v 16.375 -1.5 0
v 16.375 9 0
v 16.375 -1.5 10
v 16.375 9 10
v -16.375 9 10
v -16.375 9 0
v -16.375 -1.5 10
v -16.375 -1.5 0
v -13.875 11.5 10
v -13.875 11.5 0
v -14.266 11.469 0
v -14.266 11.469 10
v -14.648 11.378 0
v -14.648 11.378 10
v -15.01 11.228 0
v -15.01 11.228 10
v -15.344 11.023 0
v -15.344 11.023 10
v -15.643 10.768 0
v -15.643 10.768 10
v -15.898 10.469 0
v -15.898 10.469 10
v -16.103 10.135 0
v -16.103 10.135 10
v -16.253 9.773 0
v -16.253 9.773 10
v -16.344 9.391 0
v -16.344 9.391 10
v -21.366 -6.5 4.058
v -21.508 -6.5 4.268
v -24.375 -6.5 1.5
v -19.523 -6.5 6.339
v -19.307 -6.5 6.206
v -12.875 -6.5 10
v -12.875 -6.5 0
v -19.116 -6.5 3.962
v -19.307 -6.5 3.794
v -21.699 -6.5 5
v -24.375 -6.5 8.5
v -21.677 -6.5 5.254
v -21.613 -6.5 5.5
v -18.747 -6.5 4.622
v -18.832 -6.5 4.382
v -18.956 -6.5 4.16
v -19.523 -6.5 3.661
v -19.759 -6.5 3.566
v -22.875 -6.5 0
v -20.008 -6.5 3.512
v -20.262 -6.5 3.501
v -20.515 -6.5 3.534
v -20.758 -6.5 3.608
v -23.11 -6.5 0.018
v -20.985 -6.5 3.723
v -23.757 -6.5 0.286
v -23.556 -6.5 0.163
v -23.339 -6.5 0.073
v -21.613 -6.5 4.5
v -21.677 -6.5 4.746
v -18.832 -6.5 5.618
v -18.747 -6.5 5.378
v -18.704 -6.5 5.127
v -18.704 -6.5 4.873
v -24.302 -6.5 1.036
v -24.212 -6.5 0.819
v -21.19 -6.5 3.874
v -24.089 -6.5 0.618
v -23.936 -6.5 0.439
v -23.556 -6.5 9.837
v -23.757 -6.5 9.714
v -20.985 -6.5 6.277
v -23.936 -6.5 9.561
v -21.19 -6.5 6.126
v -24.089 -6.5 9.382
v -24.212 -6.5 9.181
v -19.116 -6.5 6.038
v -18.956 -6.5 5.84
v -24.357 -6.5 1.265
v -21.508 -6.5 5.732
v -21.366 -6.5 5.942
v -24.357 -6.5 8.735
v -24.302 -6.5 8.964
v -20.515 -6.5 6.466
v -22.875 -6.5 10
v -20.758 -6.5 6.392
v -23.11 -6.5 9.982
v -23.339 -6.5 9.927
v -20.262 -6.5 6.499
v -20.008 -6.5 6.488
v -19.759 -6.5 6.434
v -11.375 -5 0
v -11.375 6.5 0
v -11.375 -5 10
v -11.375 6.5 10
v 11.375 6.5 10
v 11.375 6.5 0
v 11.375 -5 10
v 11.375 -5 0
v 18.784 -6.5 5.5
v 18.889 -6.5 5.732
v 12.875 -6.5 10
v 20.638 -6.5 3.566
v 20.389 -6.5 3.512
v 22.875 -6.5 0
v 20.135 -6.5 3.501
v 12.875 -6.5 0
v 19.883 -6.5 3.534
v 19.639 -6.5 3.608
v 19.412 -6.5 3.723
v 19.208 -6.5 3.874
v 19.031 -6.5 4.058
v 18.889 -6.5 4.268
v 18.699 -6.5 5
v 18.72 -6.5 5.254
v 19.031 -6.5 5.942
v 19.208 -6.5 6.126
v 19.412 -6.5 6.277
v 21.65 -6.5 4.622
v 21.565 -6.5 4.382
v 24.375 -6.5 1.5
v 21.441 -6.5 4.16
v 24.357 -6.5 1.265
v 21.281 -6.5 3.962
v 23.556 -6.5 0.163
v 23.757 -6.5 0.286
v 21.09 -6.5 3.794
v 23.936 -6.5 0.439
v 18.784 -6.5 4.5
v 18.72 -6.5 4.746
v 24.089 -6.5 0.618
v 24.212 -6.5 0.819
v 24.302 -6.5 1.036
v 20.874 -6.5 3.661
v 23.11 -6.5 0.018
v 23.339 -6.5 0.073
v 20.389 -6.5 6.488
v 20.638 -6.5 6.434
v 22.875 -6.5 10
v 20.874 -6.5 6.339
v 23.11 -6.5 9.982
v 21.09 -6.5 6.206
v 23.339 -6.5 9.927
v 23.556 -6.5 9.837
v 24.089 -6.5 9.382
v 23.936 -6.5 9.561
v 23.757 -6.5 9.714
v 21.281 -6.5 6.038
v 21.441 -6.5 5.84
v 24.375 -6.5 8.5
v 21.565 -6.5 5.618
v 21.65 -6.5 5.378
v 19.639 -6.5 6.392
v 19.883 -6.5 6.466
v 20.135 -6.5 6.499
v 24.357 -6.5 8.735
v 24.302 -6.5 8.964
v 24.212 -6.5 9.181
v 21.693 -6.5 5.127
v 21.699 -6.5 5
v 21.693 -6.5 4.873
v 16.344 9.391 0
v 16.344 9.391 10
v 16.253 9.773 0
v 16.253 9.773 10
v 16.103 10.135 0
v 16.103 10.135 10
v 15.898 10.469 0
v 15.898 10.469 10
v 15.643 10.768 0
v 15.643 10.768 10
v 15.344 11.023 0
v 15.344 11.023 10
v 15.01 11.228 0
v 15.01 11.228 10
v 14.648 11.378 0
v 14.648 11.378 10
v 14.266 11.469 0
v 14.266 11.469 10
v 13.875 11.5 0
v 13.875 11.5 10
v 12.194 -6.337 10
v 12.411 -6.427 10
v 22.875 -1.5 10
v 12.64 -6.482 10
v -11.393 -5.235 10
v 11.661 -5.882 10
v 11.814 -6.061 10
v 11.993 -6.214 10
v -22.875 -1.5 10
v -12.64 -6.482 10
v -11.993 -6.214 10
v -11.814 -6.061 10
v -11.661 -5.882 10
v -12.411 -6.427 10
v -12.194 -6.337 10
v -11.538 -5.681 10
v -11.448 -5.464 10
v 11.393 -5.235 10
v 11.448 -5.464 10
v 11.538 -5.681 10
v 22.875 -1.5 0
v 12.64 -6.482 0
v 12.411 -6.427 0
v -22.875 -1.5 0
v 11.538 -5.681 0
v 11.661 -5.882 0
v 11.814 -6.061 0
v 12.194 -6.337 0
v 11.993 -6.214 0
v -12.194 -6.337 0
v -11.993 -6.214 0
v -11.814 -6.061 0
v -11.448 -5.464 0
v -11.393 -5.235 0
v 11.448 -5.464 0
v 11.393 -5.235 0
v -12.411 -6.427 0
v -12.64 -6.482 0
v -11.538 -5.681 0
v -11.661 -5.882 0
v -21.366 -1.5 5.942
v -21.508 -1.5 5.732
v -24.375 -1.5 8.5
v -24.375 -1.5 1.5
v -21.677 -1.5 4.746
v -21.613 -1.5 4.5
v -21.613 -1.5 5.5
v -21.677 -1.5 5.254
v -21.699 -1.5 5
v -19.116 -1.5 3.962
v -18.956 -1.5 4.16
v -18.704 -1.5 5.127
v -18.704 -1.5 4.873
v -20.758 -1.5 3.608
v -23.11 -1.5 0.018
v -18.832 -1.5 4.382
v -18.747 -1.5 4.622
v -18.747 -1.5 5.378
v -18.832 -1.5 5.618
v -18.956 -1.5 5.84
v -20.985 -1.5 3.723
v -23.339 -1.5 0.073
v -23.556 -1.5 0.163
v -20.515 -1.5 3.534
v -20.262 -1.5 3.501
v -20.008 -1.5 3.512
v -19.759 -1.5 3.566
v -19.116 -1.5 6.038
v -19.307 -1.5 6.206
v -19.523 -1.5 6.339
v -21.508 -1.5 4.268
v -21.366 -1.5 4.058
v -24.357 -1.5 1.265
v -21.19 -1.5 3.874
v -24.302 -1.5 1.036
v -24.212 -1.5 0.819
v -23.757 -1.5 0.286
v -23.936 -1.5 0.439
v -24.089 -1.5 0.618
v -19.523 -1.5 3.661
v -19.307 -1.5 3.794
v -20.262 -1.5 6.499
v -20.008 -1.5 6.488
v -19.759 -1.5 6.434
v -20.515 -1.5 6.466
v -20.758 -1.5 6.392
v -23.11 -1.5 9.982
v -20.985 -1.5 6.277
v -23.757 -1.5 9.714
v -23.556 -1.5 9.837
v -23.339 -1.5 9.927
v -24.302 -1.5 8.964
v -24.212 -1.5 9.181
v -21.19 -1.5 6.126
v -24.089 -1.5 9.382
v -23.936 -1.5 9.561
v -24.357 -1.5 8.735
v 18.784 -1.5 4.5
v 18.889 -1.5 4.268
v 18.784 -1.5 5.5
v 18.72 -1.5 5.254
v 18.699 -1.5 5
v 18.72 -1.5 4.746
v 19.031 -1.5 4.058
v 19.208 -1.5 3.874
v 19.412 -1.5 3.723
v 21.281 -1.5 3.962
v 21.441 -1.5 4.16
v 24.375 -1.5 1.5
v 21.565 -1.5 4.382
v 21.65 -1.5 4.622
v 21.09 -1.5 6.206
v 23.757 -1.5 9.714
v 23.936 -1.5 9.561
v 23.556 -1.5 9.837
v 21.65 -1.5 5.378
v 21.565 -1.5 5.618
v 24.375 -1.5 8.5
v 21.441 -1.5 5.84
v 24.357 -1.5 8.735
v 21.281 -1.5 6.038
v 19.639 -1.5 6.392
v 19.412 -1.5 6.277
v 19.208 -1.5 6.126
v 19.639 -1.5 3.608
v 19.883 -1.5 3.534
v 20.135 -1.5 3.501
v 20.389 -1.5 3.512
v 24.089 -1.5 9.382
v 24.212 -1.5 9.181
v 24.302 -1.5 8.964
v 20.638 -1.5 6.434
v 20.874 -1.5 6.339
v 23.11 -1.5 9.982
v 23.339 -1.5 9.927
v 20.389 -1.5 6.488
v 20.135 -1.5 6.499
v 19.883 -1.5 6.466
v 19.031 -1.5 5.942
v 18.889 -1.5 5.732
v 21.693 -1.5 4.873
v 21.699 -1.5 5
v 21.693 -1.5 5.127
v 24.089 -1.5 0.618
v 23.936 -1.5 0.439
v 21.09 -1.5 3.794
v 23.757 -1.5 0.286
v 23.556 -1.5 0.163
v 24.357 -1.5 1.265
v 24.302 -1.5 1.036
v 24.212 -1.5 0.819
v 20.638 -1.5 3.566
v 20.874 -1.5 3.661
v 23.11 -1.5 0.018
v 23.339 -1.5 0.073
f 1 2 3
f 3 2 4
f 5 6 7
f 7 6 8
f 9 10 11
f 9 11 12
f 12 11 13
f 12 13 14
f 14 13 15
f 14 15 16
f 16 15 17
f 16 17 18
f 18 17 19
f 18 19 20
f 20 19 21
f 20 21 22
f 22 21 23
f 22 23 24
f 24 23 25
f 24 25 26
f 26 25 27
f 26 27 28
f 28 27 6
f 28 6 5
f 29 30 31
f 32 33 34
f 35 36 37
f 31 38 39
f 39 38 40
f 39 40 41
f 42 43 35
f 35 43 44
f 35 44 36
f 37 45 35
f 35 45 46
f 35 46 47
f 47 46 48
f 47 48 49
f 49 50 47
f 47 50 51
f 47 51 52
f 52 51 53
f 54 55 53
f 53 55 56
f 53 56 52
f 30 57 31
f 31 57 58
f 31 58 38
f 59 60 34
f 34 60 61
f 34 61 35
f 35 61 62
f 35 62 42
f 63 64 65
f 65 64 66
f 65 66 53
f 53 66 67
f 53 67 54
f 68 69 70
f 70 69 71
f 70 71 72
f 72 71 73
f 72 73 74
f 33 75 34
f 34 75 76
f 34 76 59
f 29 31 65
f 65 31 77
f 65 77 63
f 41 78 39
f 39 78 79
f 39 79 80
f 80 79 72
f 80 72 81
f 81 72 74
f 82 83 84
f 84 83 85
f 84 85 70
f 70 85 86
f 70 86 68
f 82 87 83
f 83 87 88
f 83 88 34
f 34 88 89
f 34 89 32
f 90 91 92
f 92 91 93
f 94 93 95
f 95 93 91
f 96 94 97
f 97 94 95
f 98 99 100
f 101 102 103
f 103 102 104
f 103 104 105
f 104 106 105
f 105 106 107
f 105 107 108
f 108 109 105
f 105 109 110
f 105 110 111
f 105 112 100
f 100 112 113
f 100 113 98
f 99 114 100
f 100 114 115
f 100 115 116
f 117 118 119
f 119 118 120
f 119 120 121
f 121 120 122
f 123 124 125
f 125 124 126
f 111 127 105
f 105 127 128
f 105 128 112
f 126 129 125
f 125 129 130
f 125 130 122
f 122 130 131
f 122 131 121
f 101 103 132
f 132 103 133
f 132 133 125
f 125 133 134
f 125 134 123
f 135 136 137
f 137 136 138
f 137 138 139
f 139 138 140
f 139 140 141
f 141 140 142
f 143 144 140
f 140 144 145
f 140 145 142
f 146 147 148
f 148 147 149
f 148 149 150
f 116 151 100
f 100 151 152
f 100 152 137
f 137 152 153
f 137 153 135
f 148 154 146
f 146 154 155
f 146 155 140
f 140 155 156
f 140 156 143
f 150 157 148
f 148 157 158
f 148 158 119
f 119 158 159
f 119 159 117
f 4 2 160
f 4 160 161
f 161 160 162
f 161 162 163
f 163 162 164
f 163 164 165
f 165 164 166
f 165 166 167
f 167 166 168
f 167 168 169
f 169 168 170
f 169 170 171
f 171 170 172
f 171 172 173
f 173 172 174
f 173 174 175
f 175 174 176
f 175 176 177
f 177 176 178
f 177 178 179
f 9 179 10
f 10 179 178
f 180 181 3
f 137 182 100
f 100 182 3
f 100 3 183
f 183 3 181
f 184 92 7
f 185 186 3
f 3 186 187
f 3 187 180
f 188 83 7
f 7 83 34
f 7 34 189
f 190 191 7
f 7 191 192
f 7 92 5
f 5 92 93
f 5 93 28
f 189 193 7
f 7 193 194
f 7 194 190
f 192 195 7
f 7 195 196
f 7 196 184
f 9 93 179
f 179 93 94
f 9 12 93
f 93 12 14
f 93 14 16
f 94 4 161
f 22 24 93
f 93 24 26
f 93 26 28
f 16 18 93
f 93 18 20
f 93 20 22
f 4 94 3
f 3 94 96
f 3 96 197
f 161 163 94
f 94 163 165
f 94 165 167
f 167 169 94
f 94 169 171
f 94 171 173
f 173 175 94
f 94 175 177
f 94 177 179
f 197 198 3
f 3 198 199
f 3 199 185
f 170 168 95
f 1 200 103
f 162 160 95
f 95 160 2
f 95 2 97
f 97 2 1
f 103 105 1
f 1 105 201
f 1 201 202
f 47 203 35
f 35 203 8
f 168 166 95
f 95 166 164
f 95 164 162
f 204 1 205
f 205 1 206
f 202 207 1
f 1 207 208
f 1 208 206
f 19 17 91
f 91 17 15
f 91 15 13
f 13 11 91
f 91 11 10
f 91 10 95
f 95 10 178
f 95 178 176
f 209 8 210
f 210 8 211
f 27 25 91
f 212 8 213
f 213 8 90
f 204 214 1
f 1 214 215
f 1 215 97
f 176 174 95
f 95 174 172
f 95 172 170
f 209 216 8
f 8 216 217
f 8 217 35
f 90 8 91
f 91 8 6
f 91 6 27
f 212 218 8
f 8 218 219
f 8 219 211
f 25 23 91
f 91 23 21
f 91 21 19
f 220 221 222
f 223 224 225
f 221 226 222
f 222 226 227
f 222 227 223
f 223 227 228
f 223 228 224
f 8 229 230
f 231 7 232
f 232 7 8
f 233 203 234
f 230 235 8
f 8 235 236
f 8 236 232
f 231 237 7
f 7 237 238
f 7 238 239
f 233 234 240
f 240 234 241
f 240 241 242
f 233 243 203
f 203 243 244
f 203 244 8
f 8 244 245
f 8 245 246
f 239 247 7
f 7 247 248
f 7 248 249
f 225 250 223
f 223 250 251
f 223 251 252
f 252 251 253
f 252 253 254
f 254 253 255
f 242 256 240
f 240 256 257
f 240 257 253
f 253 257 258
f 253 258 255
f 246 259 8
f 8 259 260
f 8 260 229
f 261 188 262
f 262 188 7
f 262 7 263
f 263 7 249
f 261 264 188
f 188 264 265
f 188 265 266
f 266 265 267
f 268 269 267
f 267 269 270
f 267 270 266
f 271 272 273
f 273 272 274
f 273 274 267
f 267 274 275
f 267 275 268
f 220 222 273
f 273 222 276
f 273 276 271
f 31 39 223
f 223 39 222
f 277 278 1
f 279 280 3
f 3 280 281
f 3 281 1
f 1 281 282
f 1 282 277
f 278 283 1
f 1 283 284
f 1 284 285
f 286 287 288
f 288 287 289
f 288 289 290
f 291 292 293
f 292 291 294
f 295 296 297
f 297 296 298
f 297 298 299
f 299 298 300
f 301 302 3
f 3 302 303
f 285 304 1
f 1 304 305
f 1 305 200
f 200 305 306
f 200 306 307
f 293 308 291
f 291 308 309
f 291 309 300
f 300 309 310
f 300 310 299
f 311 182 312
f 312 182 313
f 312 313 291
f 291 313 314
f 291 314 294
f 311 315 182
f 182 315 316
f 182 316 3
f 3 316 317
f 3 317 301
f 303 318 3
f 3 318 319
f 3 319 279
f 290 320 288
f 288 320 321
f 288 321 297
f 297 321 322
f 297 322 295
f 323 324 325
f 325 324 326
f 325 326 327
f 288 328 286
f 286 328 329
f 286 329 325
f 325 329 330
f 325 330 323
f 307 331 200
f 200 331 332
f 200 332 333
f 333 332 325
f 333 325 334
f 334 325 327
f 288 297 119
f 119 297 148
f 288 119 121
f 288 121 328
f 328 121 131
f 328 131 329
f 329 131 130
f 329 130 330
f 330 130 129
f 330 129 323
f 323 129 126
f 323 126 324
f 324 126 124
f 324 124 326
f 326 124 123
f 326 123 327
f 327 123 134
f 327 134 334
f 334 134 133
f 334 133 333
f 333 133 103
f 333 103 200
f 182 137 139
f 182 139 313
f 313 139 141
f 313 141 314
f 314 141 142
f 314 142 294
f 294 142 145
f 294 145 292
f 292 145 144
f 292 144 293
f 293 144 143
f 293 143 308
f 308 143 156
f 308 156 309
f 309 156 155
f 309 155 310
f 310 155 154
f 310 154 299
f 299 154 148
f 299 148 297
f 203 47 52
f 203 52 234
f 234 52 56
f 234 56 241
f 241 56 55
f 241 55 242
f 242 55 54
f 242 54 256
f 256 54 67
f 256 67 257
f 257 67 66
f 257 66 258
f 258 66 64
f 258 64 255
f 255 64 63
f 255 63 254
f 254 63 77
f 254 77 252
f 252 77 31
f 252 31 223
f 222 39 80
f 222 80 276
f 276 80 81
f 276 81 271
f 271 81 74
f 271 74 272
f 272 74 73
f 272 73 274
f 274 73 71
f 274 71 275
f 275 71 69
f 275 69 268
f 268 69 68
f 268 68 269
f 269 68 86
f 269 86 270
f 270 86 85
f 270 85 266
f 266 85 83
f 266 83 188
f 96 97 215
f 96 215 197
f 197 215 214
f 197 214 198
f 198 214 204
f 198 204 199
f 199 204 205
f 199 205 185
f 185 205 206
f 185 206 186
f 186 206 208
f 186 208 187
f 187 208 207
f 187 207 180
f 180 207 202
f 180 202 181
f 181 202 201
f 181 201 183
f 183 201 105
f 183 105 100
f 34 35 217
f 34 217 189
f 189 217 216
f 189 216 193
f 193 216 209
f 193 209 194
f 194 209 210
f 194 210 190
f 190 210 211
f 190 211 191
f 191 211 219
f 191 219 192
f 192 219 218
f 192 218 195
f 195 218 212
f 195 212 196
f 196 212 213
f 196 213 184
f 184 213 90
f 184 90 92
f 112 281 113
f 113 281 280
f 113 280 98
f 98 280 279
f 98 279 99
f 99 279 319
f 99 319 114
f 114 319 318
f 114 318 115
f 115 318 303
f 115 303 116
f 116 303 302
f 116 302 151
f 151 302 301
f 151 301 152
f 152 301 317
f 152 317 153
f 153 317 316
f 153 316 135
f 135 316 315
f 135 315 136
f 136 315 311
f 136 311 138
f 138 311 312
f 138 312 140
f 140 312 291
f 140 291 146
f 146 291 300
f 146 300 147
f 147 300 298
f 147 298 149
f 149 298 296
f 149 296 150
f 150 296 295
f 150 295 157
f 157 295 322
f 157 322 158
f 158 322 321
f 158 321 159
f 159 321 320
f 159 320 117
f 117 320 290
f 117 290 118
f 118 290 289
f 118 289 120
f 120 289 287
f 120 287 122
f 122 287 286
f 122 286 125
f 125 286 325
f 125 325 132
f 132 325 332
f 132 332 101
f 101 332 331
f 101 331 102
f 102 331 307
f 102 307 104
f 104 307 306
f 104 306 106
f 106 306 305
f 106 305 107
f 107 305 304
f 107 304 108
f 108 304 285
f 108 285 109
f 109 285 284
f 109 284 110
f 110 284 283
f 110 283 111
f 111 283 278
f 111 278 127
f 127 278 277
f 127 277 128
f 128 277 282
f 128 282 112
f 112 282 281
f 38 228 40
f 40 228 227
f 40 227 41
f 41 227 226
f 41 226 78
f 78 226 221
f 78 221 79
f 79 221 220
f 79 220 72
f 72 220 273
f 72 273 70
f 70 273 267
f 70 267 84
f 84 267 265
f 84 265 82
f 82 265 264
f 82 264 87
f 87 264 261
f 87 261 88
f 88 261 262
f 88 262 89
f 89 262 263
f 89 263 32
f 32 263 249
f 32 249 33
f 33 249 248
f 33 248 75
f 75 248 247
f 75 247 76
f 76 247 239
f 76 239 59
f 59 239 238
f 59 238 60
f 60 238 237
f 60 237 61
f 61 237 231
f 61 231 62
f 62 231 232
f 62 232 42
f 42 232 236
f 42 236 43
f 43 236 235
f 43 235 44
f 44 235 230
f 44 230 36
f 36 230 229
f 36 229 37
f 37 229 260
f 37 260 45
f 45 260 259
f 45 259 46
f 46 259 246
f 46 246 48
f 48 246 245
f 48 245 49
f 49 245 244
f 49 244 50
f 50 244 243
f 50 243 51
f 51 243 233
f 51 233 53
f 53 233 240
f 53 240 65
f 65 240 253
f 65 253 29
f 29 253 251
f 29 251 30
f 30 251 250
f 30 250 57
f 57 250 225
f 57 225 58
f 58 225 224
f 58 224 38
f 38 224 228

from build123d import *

# Parameters (mm, degrees)
BOSS_EXTRU_1_DEPTH      = 10
ESQUISSE2_W             = 10
ESQUISSE2_H             = 5
BOSS_EXTRU_2_DEPTH      = 8
ESQUISSE3_W             = 10
ESQUISSE3_H             = 5
BOSS_EXTRU_3_DEPTH      = 8
CONG_1_R                = 1.5
CONG_2_R                = 1.5
ESQUISSE4_R             = 1.5
ENL_V_MAT_EXTRU_1_DEPTH = 30.379255011


with BuildPart() as part:
    # Esquisse1 → Boss.-Extru.1 (new body)
    with BuildSketch(Plane.XY):
        with BuildLine():
            ThreePointArc((-16.375, 9), (-15.642766953, 10.767766953), (-13.875, 11.5))
            Line((-13.875, 11.5), (13.875, 11.5))
            ThreePointArc((13.875, 11.5), (15.642766953, 10.767766953), (16.375, 9))
            Line((16.375, 9), (16.375, -6.5))
            Line((16.375, -6.5), (11.375, -6.5))
            Line((11.375, -6.5), (11.375, 6.5))
            Line((11.375, 6.5), (-11.375, 6.5))
            Line((-11.375, 6.5), (-11.375, -6.5))
            Line((-11.375, -6.5), (-16.375, -6.5))
            Line((-16.375, -6.5), (-16.375, 9))
        make_face()
    extrude(amount=BOSS_EXTRU_1_DEPTH)

    # Esquisse2 → Boss.-Extru.2 (add)
    with BuildSketch(Plane.ZY.offset(16.375)):
        with Locations((5, -4)):
            Rectangle(ESQUISSE2_W, ESQUISSE2_H)
    extrude(amount=BOSS_EXTRU_2_DEPTH)

    # Esquisse3 → Boss.-Extru.3 (add)
    with BuildSketch(Plane(origin=(16.375, 0, 0), x_dir=(0, 0, -1), z_dir=(1, 0, 0))):
        with Locations((-5, -4)):
            Rectangle(ESQUISSE3_W, ESQUISSE3_H)
    extrude(amount=BOSS_EXTRU_3_DEPTH)

    # Congé1
    cong_1_edges = [part.edges().sort_by_distance(p)[0] for p in [
        (-24.375, -4, 0),
        (-24.375, -4, 10),
        (24.375, -4, 10),
        (24.375, -4, 0),
    ]]
    fillet(cong_1_edges, radius=CONG_1_R)

    # Congé2
    cong_2_edges = [part.edges().sort_by_distance(p)[0] for p in [
        (11.375, -6.5, 5),
        (-11.375, -6.5, 5),
    ]]
    fillet(cong_2_edges, radius=CONG_2_R)

    # Esquisse4 → Enlèv. mat.-Extru.1 (cut, through all)
    with BuildSketch(Plane(origin=(0, -1.5, 0), x_dir=(1, 0, 0), z_dir=(0, 1, 0))):
        with Locations(Location((-20.198529412, -5, 0), (0, 0, 180))):
            Circle(ESQUISSE4_R)
        with Locations(Location((20.198529412, -5, 0), (0, 0, 180))):
            Circle(ESQUISSE4_R)
    extrude(amount=-ENL_V_MAT_EXTRU_1_DEPTH, mode=Mode.SUBTRACT)


solid = part.part
